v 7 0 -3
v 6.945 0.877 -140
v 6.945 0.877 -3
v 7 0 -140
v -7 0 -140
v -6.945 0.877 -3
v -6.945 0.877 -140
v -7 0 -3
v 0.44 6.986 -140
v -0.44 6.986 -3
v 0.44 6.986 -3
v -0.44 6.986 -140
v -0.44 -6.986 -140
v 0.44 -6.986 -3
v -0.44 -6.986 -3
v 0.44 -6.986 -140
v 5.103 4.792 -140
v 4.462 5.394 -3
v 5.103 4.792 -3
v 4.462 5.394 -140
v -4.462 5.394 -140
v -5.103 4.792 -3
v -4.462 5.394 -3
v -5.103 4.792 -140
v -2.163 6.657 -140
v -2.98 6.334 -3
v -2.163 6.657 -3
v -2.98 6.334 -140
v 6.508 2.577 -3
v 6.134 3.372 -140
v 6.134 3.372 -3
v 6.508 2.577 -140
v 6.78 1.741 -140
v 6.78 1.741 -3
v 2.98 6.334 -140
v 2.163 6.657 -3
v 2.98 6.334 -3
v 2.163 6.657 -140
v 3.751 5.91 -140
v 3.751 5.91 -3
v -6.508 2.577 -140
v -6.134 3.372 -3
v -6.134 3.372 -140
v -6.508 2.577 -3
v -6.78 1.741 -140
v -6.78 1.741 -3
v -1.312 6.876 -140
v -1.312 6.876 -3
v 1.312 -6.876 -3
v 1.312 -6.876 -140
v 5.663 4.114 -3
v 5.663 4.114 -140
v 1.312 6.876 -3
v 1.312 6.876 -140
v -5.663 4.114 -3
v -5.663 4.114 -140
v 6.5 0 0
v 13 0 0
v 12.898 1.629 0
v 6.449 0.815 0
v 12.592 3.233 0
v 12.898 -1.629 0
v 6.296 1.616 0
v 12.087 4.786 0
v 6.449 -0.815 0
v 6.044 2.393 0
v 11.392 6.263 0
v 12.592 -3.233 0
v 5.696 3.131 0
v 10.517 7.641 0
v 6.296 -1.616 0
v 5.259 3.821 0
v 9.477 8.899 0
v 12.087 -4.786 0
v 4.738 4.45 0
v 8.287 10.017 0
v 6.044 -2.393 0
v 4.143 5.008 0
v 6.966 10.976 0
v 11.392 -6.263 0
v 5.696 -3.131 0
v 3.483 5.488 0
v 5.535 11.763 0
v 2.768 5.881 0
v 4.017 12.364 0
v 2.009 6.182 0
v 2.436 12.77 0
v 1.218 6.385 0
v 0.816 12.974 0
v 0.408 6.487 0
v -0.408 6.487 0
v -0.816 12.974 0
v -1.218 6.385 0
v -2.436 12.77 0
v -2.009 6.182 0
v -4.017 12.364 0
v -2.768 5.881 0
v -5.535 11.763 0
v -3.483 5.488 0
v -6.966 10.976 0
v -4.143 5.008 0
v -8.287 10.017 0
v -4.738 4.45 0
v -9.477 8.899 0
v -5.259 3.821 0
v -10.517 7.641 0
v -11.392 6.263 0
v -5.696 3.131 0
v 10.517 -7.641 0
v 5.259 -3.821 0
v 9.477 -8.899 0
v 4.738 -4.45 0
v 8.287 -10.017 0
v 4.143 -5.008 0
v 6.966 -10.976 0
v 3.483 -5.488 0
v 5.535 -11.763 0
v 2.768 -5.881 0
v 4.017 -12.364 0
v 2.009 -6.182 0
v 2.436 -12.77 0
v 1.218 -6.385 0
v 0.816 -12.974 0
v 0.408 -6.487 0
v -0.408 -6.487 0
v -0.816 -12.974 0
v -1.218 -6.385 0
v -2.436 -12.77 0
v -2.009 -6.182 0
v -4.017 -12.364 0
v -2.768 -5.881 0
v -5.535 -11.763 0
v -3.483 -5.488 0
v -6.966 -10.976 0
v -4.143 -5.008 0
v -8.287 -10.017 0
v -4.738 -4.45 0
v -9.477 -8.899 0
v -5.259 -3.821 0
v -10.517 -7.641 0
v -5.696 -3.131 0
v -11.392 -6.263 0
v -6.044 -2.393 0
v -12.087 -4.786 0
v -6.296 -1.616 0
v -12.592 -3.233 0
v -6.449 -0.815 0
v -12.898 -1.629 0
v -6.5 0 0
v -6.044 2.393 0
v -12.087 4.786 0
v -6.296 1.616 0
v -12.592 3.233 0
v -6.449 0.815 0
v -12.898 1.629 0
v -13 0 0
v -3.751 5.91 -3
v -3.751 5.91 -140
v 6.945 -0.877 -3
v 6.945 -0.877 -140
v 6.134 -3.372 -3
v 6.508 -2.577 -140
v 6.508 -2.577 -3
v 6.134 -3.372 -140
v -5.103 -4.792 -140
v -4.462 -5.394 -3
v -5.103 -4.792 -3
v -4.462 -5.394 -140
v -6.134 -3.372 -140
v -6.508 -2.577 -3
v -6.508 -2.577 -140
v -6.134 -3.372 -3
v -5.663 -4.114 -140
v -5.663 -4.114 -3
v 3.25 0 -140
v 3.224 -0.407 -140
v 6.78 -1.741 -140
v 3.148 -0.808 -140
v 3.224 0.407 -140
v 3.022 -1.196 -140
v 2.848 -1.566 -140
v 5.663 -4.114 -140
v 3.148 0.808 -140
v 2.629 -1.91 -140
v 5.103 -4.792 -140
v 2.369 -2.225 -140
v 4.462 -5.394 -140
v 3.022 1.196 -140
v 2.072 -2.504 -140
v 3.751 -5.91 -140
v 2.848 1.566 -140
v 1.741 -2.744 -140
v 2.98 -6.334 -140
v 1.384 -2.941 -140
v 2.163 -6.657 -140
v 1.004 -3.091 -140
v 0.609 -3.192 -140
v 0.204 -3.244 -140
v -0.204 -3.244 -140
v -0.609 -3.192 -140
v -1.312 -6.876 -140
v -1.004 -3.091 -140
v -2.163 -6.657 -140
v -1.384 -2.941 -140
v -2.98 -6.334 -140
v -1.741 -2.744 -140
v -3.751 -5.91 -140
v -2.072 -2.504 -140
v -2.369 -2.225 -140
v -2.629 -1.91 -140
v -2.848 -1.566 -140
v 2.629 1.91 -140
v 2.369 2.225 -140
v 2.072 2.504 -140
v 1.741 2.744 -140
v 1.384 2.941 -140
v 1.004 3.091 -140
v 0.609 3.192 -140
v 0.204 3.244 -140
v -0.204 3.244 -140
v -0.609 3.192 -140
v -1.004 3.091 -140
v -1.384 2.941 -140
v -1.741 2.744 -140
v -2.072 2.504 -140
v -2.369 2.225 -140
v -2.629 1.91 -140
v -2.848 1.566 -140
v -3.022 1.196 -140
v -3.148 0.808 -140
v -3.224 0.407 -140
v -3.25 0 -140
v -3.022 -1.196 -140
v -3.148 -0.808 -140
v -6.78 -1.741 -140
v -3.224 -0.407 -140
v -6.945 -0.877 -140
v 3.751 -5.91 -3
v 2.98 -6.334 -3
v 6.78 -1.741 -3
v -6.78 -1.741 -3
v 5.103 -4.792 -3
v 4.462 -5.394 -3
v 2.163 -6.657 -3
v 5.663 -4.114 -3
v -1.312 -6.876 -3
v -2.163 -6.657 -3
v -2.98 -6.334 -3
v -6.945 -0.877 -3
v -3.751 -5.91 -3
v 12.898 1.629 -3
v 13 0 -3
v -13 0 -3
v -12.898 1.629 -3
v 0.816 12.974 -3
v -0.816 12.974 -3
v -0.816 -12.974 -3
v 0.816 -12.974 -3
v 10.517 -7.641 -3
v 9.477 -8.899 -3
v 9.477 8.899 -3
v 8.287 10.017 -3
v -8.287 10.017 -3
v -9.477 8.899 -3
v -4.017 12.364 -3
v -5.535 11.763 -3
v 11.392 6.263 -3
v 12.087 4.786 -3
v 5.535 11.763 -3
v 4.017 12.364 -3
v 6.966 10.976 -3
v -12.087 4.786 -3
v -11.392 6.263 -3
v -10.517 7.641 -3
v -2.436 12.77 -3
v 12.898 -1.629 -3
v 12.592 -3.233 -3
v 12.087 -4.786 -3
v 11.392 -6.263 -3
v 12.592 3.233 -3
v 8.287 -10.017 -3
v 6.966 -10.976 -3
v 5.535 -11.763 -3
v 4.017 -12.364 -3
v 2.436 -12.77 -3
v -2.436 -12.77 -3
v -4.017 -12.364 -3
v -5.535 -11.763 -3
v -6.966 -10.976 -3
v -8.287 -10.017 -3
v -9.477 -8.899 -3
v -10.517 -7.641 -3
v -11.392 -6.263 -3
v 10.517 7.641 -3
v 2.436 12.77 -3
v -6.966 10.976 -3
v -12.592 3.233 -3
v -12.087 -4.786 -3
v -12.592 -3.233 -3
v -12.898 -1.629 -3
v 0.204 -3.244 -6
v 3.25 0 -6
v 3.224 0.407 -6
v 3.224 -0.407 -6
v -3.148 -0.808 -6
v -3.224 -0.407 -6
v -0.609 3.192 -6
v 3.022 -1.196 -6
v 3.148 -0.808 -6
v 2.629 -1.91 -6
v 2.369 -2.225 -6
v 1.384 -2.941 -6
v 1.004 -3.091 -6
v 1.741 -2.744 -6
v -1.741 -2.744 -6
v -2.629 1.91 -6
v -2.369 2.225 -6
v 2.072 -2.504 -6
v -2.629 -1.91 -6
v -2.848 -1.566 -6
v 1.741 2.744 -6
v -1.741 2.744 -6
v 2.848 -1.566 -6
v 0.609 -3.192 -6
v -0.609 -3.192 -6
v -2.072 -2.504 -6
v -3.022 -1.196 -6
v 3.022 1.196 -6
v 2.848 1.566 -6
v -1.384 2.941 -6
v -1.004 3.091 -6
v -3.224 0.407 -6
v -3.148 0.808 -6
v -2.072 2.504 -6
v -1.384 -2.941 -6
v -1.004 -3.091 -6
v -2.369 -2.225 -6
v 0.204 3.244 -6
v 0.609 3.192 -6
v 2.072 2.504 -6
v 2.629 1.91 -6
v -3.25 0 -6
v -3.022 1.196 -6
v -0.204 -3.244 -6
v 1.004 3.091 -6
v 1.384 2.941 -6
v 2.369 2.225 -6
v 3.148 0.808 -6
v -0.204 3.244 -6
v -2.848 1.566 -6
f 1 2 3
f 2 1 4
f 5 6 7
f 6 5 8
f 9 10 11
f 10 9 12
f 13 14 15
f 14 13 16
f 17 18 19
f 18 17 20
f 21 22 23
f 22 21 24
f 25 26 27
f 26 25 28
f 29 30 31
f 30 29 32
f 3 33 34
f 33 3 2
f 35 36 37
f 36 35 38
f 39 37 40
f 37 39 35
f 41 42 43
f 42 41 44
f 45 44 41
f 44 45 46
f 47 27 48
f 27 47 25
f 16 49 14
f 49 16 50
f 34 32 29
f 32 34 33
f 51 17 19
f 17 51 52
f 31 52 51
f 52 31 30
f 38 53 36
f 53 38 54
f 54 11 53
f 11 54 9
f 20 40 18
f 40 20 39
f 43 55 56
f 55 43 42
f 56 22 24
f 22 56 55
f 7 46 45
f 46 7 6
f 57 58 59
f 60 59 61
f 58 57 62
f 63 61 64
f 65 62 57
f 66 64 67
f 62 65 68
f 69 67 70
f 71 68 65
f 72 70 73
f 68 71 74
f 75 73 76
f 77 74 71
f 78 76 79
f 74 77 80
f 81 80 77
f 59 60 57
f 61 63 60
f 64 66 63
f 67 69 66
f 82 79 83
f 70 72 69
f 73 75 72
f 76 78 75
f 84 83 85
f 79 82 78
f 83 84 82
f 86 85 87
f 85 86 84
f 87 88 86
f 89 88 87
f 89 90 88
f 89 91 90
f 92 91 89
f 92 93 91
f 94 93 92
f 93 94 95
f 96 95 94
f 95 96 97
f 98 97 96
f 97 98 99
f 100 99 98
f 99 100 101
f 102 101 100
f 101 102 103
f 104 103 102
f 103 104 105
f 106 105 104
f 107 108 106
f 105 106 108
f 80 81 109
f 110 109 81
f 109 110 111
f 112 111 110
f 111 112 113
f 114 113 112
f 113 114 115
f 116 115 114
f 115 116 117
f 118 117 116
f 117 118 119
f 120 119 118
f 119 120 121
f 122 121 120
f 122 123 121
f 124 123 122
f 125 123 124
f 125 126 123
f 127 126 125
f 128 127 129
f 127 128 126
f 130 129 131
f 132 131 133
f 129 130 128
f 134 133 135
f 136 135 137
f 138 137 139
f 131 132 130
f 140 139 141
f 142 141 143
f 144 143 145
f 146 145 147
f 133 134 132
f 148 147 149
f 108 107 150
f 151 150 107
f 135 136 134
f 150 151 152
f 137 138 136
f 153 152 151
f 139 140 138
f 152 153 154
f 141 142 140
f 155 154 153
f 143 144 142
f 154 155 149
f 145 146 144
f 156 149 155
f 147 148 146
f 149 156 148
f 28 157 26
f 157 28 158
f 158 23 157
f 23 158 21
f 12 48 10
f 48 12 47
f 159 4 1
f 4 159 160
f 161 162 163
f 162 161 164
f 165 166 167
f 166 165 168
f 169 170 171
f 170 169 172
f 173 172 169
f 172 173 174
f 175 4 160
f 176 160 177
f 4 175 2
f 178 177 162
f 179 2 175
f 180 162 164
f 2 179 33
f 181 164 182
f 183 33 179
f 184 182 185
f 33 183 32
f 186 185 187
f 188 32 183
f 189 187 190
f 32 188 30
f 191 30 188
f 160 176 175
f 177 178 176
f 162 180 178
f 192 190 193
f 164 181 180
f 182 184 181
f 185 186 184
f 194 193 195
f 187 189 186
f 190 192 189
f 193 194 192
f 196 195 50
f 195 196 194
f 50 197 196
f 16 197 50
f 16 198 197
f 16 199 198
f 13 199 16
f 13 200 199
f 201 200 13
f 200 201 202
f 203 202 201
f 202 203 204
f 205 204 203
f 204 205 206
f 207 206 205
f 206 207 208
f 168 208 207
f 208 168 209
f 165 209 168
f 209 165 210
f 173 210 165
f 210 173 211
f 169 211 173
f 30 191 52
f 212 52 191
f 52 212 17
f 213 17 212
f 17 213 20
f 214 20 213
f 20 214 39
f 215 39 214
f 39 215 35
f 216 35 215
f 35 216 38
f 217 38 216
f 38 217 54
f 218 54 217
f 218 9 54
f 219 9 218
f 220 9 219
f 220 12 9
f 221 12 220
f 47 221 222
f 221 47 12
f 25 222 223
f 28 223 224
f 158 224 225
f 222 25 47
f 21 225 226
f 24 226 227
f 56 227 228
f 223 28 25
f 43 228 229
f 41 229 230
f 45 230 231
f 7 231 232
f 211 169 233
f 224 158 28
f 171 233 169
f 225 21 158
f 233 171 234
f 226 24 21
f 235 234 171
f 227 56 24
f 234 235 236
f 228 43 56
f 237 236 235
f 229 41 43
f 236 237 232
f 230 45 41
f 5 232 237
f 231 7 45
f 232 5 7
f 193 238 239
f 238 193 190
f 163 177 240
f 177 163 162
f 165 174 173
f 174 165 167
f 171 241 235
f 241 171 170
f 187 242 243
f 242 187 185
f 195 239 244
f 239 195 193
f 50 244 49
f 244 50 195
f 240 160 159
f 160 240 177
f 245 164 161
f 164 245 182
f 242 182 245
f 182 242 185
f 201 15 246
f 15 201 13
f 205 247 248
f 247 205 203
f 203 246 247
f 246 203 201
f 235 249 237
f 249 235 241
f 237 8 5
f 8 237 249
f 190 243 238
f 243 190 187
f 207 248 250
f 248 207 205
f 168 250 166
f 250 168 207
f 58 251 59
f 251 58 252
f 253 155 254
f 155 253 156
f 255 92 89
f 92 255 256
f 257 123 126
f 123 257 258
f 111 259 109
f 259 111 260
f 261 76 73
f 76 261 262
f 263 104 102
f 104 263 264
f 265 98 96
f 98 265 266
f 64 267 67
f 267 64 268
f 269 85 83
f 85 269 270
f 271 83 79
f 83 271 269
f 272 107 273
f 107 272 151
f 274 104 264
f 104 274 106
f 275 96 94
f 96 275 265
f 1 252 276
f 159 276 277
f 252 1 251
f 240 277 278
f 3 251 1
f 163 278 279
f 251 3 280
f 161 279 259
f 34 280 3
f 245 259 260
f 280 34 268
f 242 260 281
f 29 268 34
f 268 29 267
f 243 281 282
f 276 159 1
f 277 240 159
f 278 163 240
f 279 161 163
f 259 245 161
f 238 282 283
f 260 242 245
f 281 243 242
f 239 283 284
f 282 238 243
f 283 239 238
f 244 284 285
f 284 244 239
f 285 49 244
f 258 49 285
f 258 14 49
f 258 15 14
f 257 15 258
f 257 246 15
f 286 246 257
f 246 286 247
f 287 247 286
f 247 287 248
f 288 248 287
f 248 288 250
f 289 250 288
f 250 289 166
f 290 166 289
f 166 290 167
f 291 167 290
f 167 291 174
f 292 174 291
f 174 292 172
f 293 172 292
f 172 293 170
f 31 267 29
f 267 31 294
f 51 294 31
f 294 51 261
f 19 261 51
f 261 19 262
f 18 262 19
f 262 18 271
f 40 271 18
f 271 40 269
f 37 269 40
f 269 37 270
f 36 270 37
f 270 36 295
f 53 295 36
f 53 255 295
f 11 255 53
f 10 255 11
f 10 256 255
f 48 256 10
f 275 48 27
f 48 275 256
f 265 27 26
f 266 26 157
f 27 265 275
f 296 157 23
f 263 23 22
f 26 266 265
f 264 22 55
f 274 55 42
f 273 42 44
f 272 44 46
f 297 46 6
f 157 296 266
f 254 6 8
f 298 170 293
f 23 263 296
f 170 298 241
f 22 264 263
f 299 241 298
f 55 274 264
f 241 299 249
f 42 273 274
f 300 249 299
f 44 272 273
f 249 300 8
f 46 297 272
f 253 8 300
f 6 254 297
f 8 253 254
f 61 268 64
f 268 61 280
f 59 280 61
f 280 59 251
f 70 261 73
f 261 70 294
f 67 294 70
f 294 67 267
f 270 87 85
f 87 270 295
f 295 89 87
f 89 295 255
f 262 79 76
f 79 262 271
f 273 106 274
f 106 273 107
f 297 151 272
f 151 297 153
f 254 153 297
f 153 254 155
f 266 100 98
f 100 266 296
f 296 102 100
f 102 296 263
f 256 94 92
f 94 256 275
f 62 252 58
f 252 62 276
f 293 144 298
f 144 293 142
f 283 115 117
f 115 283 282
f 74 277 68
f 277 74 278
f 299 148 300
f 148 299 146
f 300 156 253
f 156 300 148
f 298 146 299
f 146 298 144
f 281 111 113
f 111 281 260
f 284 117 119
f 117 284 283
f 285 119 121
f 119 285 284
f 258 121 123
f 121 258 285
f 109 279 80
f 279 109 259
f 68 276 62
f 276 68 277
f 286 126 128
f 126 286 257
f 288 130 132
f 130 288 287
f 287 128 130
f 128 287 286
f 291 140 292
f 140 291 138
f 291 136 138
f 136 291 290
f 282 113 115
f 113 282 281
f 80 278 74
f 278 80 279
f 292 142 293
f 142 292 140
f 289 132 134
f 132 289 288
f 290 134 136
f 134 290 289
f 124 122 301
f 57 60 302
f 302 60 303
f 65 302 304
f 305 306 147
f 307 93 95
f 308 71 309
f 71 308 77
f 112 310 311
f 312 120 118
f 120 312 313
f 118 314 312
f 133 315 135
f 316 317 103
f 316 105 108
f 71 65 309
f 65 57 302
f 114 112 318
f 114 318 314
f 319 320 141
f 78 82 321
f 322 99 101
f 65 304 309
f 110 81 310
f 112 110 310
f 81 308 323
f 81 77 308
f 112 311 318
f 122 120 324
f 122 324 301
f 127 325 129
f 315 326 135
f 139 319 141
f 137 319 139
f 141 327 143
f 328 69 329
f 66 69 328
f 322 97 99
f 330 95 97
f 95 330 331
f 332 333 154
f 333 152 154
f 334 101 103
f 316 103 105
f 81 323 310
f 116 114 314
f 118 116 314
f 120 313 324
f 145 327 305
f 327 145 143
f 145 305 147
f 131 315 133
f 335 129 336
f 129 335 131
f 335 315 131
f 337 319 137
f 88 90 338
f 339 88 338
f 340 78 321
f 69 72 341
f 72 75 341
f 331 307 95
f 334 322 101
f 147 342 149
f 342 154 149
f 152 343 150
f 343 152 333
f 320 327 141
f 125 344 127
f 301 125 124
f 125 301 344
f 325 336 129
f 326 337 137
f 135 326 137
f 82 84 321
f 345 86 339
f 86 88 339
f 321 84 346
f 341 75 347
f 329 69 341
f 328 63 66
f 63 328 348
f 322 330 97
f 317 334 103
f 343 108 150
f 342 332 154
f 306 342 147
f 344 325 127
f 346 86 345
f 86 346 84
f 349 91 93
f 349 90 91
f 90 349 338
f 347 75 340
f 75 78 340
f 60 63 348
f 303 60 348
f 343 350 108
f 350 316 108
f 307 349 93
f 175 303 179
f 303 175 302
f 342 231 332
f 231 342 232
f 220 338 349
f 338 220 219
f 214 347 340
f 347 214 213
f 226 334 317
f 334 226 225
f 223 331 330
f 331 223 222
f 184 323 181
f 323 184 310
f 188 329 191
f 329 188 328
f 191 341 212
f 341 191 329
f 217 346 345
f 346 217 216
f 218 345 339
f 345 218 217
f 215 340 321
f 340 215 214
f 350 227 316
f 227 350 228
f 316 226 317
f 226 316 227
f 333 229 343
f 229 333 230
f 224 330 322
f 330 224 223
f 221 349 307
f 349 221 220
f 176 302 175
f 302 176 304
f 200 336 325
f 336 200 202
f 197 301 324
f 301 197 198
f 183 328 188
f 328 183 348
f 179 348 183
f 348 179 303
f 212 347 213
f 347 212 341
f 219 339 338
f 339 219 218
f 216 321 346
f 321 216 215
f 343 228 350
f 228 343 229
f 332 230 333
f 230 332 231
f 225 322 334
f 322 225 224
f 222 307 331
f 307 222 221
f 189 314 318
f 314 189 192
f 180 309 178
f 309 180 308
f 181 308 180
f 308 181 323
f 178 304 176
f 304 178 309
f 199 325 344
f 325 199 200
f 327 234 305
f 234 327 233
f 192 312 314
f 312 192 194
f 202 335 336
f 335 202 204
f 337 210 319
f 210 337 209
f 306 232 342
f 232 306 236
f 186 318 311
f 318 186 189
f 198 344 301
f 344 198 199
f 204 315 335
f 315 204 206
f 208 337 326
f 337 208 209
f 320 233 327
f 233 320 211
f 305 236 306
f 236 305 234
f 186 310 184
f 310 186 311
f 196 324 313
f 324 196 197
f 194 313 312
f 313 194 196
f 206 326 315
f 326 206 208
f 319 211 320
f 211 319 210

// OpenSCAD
$fn = 50;


difference() {
	union() {
		translate(v = [0, 0, -140.0000000000]) {
			cylinder(h = 140, r = 7.0000000000);
		}
		translate(v = [0, 0, -3.0000000000]) {
			cylinder(h = 3, r = 13.0000000000);
		}
	}
	union() {
		translate(v = [0, 0, 0]) {
			rotate(a = [0, 0, 0]) {
				difference() {
					union() {
						#translate(v = [0, 0, -140.0000000000]) {
							cylinder(h = 140, r = 2.2500000000);
						}
						#translate(v = [0, 0, -6]) {
							cylinder(h = 6, r = 7.0000000000, r1 = 3.2500000000, r2 = 6.5000000000);
						}
						#translate(v = [0, 0, -140.0000000000]) {
							cylinder(h = 140, r = 3.2500000000);
						}
						#translate(v = [0, 0, -140.0000000000]) {
							cylinder(h = 140, r = 2.2500000000);
						}
					}
					union();
				}
			}
		}
	}
}
